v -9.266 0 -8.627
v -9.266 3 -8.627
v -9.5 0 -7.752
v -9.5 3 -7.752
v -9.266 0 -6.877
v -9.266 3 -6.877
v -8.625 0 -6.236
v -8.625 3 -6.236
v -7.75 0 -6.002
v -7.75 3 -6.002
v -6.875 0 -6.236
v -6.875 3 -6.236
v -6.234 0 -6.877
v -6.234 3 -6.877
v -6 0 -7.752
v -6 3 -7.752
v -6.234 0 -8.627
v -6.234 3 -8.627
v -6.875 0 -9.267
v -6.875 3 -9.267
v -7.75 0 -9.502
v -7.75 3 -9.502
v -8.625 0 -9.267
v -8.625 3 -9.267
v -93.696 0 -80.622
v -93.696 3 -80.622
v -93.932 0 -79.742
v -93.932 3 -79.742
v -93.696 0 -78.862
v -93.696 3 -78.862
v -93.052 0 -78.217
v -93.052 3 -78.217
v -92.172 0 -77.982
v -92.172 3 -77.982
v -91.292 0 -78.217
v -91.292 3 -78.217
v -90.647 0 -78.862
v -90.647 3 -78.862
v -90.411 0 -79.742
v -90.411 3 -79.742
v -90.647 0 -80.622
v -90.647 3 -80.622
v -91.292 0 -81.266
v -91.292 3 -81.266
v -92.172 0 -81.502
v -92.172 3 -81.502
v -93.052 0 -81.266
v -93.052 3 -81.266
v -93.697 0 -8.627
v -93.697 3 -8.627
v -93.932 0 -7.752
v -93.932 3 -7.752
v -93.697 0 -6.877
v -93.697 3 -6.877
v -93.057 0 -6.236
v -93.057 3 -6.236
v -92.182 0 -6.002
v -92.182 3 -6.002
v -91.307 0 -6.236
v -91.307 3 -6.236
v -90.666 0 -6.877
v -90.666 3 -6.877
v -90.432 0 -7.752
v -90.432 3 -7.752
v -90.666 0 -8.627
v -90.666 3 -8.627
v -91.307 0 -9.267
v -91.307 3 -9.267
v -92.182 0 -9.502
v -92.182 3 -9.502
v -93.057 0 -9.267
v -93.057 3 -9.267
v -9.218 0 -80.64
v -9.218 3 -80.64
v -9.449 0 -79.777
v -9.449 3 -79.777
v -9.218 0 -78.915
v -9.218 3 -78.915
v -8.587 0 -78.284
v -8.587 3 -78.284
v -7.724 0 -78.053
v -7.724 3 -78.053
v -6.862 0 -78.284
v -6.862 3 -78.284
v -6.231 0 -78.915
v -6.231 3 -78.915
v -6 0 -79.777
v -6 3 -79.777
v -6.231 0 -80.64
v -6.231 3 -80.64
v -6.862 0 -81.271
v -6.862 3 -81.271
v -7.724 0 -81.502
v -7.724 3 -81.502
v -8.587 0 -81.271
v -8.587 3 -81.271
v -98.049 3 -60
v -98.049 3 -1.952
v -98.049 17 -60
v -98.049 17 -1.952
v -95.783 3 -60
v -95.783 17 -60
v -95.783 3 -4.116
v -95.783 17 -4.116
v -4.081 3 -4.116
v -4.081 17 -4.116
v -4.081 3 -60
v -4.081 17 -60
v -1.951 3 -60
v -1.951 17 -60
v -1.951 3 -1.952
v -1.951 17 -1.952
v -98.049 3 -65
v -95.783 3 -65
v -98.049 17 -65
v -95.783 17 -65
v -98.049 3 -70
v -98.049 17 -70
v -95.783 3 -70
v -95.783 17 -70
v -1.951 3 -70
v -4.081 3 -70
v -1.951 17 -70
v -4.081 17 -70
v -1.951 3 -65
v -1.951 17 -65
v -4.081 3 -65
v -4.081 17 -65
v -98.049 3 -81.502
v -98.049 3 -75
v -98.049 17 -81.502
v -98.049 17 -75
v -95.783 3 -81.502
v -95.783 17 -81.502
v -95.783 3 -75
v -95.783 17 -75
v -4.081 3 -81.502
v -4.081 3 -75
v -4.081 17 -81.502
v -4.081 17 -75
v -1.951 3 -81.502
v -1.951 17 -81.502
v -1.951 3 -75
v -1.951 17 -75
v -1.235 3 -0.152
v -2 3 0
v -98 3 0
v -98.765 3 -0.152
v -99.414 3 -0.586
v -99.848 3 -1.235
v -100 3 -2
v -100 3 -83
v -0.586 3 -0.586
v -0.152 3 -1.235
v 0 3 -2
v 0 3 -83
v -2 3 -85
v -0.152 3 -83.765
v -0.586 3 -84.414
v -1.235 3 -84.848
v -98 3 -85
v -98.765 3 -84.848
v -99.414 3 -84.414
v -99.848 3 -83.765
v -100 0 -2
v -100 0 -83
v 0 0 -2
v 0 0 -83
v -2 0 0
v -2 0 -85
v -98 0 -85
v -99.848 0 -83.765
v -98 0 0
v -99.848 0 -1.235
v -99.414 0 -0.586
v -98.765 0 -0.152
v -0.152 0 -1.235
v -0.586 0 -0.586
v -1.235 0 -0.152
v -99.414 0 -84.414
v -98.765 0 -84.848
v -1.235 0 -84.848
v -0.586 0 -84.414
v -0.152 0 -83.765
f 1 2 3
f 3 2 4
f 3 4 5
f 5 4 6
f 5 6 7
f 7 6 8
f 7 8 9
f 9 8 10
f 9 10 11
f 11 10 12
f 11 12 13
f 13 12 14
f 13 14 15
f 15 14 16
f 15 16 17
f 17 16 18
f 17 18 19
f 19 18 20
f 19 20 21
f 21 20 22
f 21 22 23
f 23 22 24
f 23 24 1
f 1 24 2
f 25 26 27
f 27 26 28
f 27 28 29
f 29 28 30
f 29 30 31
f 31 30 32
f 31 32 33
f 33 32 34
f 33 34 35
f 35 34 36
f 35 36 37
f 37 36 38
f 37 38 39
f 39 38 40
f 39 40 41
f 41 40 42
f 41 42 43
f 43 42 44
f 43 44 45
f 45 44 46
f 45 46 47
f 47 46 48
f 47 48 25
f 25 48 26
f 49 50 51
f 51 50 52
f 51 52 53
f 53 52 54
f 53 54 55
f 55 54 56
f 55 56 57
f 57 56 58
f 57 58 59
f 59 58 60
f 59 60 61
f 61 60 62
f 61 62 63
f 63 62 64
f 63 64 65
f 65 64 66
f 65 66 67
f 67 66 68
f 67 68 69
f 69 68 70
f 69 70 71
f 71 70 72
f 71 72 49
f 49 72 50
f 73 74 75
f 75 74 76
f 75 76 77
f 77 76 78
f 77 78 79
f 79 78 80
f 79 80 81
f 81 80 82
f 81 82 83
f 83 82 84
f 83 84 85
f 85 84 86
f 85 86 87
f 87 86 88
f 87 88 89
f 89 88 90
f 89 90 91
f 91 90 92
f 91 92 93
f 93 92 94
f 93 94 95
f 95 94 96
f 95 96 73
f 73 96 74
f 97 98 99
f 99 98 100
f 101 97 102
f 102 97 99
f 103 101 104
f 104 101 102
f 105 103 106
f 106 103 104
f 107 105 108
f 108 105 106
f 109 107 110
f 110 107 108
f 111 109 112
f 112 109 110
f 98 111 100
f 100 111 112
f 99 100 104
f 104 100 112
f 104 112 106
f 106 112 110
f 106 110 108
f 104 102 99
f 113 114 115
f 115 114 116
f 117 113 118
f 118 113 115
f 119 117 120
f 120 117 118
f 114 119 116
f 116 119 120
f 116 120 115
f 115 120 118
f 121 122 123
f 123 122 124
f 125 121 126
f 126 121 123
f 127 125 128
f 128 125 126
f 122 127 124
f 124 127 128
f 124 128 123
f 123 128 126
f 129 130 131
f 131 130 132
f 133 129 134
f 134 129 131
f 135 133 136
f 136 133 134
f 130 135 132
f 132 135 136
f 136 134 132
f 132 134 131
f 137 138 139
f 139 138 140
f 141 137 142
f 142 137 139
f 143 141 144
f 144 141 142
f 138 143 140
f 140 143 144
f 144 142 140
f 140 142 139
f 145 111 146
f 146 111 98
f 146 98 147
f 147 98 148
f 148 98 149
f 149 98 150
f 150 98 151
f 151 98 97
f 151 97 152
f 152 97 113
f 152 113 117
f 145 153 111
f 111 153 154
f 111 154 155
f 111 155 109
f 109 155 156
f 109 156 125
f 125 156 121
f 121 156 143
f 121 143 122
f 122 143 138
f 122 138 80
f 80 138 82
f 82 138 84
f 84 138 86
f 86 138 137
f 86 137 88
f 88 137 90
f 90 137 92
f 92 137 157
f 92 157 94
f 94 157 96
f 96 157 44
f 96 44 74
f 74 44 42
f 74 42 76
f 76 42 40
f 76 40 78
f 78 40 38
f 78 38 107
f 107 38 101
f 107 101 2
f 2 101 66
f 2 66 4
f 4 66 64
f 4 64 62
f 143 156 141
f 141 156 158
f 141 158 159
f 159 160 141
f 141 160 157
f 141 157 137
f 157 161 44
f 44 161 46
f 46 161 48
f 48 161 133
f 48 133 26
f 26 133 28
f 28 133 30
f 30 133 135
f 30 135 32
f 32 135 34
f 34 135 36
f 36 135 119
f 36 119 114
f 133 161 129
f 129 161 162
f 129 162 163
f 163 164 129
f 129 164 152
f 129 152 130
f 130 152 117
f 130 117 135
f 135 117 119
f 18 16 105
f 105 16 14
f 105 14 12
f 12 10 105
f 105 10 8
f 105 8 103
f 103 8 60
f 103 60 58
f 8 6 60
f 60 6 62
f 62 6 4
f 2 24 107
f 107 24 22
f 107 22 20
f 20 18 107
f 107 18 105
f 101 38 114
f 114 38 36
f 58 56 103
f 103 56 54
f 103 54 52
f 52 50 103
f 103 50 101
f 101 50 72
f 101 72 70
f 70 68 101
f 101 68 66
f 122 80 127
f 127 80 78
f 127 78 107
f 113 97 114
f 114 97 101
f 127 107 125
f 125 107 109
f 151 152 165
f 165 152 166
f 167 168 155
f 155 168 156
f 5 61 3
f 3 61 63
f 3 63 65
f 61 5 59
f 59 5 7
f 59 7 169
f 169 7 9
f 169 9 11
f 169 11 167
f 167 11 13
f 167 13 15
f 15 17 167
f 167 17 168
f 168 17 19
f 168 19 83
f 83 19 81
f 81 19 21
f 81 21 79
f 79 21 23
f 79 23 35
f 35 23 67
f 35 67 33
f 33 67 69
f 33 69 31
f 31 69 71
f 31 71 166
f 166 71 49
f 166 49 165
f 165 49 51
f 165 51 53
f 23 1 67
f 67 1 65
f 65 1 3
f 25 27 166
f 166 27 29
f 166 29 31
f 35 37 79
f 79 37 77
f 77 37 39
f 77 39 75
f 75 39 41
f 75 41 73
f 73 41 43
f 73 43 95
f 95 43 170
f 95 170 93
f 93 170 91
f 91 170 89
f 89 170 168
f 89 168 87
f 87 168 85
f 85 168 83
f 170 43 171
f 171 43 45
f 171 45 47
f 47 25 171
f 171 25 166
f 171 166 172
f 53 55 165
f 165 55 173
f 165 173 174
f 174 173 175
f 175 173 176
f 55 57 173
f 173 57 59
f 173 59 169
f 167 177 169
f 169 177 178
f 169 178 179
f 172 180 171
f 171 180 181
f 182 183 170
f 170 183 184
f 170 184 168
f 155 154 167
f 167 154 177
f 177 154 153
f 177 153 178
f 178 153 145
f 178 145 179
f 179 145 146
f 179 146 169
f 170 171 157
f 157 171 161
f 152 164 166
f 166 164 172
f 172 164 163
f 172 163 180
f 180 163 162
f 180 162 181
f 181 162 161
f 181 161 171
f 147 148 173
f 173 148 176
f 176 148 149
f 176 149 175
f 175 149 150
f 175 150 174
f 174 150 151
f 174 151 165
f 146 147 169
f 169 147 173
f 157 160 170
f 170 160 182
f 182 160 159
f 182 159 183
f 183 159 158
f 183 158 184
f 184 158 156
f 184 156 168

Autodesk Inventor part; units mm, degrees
ref_plane "YZ Plane" through (0, 0, 0) normal (1, 0, 0) x (0, 1, 0)
ref_plane "XZ Plane" through (0, 0, 0) normal (0, 1, 0) x (-1, 0, 0)
ref_plane "XY Plane" through (0, 0, 0) normal (0, 0, 1) x (1, 0, 0)
sketch "Sketch1" plane through (0, 0, 0) normal (0, 1, 0) x (-1, 0, 0)
  line L0 (0, 0) -> (100, 0)
  line L1 (100, 0) -> (100, -85)
  line L2 (100, -85) -> (0, -85)
  line L3 (0, -85) -> (0, 0)
  line L4 (100, -85) -> (100, -81.5)
  line L5 (100, -85) -> (0, -85)
  line L6 (0, 0) -> (100, 0)
  dimension "d0" = 100
  dimension "d1" = 85
extrude "Extrusion1" add sketch "Sketch1" along normal blind 3
sketch "Sketch5" plane through (0, 3, 0) normal (0, 1, 0) x (1, 0, 0)
  line L0 (-100, 85.001914) -> (0, 85.001914)
  line L1 (0, 85.001914) -> (0, 0.001914)
  line L2 (0, 0.001914) -> (-100, 0.001914)
  line L3 (0, 0.001914) -> (0, 3.501877)
  line L4 (0, 0.001914) -> (-100, 0.001914)
  line L5 (-100, 85.001914) -> (0, 85.001914)
  line L6 (-100, 85) -> (-100, 0)
  line L7 (-100, 85) -> (-100, 0)
  line L8 (0, 81.501879) -> (-13.977379, 81.501879)
  line L9 (0, 85) -> (-100, 85)
  line L10 (-13.977379, 81.501879) -> (-13.977379, 85)
  line L11 (0, 0) -> (0, 85)
  line L12 (0, 81.501879) -> (0, 85)
  line L13 (0, 85) -> (-13.977379, 85)
  line L14 (0, 81.501879) -> (-6, 81.501879)
  line L15 (-100, 85) -> (-100, 0)
  line L16 (-100, 0) -> (0, 0)
  line L17 (-100, 81.501917) -> (-84.168275, 81.501917)
  line L18 (-84.168275, 85) -> (-84.168275, 81.501917)
  line L19 (-93.931804, 81.467894) -> (-95.682804, 81.467894)
  line L20 (-98.248671, 81.501917) -> (-100, 81.501917)
  line L21 (-47.950989, 85) -> (-11.964435, 85)
  line L22 (-57.205258, 85) -> (-86.408023, 85)
  circle A0 centre (-7.75, 7.751877) radius 1.75
  circle A1 centre (-92.181804, 7.751877) radius 1.75
  circle A2 centre (-7.724421, 79.777458) radius 1.724421
  circle A3 centre (-92.171647, 79.74176) radius 1.760157
  line L23 (-6, 6.035046) -> (-6, 6.001877)
  line L24 (-1.751121, 81.501879) -> (-1.951121, 81.501879)
  line L25 (-1.951121, 81.501879) -> (-1.951121, 1.951914)
  line L26 (-98.048671, 1.951914) -> (-98.048671, 81.501917)
  line L27 (-98.048671, 1.951914) -> (-1.951121, 1.951914)
  line L28 (-4.180804, 81.501879) -> (-4.080804, 81.501879)
  line L29 (-4.080804, 81.501879) -> (-4.080804, 4.116343)
  line L30 (-95.682804, 81.501917) -> (-95.782804, 81.501917)
  line L31 (-95.782804, 81.501917) -> (-95.782804, 4.116343)
  line L32 (-95.782804, 4.116343) -> (-4.080804, 4.116343)
  line L33 (0, 85) -> (0, 75)
  line L34 (-1.951121, 75) -> (-4.080804, 75)
  line L35 (-4.080804, 75) -> (-4.080804, 70)
  line L36 (-4.080804, 70) -> (-1.951121, 70)
  line L37 (-1.951121, 70) -> (-1.951121, 65)
  line L38 (-1.951121, 65) -> (-4.080804, 65)
  line L39 (-4.080804, 65) -> (-4.080804, 60)
  line L40 (-4.080804, 60) -> (-1.951121, 60)
  line L41 (-95.782804, 60) -> (-98.048671, 60)
  line L42 (-95.782804, 65) -> (-98.048671, 65)
  line L43 (-95.782804, 70) -> (-98.048671, 70)
  line L44 (-95.782804, 75) -> (-98.048671, 75)
  point P0 (-92.171647, 81.501917)
  point P1 (-7.724421, 81.501879)
  dimension "d22" = 100
  dimension "d23" = 85
  dimension "d61" = 3.5
  dimension "d74" = 0.1
extrude "Extrusion10" add sketch "Sketch5" along normal blind 14 contours L17 L31 L44 L26 | L43 L31 L42 L26 | L41 L31 L32 L29 L40 L25 L27 L26 | L25 L34 L29 L8 | L25 L38 L29 L36
extrude "Extrusion11" cut sketch "Sketch5" against normal through all contours A3 | A2 | A0 | A1
fillet "Fillet1" radius 2 4 edges at (-100, 1.5, -85) (-100, 1.5, 0) (0, 1.5, -85) (0, 1.5, 0)
